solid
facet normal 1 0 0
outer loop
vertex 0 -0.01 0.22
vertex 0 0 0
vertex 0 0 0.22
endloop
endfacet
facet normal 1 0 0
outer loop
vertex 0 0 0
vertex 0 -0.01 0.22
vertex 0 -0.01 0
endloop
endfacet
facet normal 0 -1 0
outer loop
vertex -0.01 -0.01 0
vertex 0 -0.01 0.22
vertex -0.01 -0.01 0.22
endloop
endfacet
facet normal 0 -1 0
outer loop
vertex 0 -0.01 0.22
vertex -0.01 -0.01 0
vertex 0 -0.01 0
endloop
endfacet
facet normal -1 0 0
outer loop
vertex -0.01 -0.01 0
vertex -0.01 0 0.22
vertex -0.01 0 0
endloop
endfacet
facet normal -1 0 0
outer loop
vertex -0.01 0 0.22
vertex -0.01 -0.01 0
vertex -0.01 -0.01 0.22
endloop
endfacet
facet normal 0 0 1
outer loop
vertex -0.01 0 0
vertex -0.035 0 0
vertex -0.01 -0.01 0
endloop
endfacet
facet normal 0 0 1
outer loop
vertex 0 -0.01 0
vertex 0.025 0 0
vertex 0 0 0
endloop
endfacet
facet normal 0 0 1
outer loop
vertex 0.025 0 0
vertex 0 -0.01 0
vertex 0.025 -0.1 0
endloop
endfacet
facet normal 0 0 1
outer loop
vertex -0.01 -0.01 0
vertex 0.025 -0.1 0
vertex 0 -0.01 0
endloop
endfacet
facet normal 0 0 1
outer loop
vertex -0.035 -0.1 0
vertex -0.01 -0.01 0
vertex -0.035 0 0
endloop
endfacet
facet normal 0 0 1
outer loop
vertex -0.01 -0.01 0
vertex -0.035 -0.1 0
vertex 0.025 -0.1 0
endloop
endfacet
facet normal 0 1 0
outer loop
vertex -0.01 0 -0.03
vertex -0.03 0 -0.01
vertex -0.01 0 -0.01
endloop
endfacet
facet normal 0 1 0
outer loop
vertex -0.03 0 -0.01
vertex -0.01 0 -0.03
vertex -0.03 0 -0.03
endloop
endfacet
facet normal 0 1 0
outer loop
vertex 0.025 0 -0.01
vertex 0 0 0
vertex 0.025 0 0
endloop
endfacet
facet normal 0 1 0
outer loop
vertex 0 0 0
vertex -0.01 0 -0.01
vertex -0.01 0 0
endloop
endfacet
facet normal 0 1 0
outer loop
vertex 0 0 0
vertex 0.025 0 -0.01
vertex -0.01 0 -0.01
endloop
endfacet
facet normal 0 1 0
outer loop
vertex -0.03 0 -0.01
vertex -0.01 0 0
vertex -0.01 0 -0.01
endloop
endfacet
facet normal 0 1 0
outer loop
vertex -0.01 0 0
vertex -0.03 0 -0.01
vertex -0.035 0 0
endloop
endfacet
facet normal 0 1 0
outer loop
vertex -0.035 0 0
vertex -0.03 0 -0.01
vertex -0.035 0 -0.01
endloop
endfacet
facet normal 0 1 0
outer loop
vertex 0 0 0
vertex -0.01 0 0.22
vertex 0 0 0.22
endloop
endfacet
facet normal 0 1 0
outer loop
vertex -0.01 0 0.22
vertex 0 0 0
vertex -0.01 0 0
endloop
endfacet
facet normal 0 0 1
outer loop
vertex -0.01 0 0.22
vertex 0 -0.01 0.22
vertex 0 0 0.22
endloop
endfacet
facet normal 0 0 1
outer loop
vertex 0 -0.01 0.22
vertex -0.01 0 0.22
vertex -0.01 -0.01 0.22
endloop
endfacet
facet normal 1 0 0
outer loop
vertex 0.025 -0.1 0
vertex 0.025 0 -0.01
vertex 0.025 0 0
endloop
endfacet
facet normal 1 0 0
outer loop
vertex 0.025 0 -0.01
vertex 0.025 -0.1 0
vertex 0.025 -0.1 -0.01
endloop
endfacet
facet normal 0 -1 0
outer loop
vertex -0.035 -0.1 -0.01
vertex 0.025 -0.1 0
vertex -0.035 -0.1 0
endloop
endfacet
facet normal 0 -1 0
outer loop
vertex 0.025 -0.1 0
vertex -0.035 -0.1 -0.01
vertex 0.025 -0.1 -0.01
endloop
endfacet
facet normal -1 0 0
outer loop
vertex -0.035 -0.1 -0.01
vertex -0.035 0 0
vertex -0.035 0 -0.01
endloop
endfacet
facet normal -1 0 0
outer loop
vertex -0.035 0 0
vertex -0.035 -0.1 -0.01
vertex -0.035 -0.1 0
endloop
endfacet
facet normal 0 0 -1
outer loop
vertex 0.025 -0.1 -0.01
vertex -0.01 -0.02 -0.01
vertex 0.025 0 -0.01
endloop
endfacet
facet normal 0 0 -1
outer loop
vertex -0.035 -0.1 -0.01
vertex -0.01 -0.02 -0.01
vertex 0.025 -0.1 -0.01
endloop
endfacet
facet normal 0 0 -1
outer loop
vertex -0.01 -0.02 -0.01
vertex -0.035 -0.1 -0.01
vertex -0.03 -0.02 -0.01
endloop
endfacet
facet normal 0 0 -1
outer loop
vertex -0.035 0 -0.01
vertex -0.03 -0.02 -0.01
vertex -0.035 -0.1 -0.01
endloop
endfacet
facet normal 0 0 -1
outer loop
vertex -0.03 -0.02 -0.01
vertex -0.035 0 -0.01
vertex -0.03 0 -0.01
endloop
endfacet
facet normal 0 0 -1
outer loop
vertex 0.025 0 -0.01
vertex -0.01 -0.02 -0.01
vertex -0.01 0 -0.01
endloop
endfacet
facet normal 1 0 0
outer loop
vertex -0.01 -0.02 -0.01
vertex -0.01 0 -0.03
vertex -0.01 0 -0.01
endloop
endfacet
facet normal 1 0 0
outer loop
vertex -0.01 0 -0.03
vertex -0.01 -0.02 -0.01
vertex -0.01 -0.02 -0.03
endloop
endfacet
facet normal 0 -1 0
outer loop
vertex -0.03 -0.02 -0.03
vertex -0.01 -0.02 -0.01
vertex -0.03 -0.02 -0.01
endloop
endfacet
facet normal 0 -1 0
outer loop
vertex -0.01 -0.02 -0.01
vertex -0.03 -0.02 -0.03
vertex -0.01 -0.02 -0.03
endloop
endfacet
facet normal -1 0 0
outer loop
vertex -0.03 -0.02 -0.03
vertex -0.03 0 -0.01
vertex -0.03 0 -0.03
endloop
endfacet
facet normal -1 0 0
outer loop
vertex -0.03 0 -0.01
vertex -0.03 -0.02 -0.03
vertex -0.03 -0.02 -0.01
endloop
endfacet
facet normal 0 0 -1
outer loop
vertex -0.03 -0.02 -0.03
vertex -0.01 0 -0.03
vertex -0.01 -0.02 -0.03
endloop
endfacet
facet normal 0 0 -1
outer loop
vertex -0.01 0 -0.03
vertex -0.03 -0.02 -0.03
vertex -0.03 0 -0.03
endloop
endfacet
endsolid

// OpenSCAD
scale([.02,.02,.02]){
rotate([90,0,0]){
    rotate([0,180,0]){
rotate([180,0,0]){

translate([0,-11,0]){
cube([0.5,11,0.5]);
translate([-1.25,11,0])
{
    cube([3,0.5,5]);
}
translate([0.5,11.5,0])
{
    cube([1,1,1]);
}
}}}}}
